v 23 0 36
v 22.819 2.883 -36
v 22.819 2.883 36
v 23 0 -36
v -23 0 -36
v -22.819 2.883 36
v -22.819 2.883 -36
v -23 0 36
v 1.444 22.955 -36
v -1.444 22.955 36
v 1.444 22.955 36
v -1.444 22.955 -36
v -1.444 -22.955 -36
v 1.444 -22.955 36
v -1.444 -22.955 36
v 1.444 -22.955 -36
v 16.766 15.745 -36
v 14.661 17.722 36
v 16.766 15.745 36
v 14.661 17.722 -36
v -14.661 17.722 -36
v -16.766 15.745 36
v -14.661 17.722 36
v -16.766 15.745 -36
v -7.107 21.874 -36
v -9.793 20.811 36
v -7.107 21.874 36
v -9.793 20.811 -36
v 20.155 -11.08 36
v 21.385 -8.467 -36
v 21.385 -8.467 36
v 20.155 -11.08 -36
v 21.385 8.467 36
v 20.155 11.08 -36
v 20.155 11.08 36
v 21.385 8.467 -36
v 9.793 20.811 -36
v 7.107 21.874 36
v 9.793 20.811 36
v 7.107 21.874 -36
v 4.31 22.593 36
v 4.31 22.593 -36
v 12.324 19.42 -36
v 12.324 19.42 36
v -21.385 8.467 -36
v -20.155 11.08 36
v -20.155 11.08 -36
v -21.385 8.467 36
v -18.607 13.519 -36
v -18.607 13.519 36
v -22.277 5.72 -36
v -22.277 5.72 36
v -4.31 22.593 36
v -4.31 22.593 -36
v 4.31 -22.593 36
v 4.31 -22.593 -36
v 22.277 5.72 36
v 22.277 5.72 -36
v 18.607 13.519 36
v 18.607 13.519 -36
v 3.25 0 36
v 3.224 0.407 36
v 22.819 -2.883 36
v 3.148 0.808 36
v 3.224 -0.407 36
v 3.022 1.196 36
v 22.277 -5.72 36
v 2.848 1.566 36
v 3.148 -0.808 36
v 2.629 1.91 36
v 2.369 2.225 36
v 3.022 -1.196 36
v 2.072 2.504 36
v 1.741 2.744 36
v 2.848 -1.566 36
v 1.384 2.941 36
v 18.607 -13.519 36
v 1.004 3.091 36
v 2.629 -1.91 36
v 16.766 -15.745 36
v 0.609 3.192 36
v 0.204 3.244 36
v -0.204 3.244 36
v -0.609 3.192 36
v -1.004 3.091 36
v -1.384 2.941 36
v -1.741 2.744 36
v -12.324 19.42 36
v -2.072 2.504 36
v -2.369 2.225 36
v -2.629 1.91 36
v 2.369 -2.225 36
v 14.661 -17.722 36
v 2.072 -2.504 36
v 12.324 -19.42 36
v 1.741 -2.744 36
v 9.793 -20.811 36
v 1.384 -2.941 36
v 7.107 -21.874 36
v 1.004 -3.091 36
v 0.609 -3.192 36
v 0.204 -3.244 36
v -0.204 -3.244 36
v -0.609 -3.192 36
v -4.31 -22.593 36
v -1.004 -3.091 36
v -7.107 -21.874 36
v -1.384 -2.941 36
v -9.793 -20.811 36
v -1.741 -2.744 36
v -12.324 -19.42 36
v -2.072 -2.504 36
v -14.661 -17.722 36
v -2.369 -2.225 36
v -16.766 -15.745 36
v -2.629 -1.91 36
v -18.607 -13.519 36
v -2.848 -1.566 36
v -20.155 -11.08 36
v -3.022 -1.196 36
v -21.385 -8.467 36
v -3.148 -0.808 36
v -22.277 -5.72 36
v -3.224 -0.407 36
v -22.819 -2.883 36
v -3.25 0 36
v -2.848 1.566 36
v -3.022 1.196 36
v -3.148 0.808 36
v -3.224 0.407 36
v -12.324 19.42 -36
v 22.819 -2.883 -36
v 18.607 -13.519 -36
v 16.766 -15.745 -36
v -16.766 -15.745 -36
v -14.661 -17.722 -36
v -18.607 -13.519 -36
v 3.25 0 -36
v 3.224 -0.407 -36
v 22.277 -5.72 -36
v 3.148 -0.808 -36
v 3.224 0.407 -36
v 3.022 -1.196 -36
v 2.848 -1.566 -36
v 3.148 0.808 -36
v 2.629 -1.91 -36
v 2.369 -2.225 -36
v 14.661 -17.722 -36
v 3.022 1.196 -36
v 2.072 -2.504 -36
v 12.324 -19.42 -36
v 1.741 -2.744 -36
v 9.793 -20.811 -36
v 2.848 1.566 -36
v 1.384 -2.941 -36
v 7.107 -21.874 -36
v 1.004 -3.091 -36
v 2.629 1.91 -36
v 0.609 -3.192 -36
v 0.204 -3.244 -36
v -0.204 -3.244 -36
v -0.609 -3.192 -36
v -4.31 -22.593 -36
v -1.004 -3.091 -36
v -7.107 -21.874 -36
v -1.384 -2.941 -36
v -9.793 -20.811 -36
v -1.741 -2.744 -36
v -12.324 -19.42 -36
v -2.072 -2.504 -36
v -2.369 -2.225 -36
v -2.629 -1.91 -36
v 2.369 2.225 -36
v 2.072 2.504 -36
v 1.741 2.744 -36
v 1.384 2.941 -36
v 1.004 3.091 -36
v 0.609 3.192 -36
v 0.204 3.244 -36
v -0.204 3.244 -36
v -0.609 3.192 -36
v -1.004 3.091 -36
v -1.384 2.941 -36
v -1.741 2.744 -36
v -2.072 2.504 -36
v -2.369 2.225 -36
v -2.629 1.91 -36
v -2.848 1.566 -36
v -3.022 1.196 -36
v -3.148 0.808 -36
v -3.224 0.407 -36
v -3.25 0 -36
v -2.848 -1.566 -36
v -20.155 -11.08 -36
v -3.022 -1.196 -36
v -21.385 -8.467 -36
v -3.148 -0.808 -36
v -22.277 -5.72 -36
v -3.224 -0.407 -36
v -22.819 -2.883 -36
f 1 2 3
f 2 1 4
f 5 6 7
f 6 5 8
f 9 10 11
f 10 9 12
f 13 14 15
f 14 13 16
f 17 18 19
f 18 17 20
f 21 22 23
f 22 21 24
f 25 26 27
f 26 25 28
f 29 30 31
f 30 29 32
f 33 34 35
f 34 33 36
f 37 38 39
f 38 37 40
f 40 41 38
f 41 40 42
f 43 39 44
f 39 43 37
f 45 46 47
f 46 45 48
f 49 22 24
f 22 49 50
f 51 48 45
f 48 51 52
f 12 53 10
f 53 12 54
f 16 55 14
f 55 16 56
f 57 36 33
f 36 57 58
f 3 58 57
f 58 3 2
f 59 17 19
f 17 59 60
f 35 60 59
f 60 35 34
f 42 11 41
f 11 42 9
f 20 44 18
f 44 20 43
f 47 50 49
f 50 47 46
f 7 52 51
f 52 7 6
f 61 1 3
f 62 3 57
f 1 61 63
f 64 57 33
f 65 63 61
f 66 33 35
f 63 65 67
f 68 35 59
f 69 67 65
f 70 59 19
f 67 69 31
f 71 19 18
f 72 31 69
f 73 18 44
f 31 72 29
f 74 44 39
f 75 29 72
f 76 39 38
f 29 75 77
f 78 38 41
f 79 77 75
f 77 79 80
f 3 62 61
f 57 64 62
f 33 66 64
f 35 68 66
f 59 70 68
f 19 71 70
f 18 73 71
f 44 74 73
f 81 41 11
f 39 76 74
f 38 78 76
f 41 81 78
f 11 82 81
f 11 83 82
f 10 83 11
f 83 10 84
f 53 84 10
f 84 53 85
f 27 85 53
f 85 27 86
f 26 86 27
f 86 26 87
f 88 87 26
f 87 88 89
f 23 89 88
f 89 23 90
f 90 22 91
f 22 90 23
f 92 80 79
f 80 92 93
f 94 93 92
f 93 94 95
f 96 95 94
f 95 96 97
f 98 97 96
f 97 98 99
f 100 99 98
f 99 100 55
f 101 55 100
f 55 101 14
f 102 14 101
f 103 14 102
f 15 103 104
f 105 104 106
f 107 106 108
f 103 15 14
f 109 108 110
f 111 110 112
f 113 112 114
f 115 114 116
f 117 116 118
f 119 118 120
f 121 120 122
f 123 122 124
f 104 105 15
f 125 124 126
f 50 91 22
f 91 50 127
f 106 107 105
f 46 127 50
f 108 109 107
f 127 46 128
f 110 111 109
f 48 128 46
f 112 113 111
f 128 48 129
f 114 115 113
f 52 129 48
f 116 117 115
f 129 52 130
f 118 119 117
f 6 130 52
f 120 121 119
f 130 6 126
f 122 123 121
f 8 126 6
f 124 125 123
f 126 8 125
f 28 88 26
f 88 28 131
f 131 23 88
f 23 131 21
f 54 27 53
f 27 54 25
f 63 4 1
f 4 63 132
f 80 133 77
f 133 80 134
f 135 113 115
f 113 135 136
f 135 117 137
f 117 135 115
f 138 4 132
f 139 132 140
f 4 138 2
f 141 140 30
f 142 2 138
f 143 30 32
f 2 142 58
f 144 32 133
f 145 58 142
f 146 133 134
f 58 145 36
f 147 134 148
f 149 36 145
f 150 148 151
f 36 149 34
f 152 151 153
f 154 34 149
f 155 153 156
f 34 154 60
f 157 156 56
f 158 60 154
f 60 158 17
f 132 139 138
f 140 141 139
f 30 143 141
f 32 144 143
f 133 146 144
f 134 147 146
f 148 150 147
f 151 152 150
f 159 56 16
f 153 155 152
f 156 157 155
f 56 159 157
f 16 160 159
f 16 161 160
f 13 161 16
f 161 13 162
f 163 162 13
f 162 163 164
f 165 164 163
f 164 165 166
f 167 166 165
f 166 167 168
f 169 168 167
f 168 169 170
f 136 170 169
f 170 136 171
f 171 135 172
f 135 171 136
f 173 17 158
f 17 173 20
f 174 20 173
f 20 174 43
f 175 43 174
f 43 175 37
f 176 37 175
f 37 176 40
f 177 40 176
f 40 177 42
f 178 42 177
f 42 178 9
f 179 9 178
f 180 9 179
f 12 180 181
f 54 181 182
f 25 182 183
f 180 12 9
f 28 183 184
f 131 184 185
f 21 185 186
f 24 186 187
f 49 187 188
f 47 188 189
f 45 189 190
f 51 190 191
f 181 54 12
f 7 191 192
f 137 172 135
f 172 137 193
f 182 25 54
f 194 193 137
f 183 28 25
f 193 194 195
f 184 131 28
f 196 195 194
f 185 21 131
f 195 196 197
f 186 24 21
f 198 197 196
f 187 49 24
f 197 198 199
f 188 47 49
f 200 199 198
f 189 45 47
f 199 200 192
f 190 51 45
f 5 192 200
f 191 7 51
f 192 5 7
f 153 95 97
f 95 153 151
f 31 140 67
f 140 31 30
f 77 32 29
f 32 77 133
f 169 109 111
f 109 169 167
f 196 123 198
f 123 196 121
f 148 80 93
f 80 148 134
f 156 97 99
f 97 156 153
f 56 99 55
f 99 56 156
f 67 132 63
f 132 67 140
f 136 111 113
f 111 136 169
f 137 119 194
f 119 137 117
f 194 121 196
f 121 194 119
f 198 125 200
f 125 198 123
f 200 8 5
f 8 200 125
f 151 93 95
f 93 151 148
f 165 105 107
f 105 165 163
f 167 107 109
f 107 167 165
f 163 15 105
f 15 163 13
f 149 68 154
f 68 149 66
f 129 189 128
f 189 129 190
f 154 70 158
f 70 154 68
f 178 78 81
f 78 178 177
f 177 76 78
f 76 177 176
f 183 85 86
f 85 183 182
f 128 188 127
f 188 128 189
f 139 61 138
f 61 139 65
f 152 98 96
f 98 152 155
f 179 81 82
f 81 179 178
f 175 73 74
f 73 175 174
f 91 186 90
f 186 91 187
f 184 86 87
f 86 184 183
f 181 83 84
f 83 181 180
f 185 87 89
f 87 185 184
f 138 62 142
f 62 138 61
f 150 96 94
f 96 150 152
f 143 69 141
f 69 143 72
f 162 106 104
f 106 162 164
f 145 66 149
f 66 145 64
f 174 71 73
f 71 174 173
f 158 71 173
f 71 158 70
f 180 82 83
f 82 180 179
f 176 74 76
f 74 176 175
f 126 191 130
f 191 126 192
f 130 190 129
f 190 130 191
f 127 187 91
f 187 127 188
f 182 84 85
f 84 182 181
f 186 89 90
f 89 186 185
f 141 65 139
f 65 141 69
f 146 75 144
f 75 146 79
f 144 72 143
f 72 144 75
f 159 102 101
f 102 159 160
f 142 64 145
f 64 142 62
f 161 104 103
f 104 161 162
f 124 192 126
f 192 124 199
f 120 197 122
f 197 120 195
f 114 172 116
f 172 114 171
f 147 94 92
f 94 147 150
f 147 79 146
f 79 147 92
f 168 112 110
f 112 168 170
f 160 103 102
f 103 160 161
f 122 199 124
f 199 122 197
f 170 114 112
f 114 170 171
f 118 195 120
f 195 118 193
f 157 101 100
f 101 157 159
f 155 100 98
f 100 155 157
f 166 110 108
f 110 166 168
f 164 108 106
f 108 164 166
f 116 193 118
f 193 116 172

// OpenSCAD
$fn = 50;


difference() {
	union() {
		translate(v = [0, 0, -36.0000000000]) {
			cylinder(h = 72, r = 23.0000000000);
		}
	}
	union() {
		translate(v = [0, 0, -100.0000000000]) {
			cylinder(h = 200, r = 3.2500000000);
		}
	}
}
